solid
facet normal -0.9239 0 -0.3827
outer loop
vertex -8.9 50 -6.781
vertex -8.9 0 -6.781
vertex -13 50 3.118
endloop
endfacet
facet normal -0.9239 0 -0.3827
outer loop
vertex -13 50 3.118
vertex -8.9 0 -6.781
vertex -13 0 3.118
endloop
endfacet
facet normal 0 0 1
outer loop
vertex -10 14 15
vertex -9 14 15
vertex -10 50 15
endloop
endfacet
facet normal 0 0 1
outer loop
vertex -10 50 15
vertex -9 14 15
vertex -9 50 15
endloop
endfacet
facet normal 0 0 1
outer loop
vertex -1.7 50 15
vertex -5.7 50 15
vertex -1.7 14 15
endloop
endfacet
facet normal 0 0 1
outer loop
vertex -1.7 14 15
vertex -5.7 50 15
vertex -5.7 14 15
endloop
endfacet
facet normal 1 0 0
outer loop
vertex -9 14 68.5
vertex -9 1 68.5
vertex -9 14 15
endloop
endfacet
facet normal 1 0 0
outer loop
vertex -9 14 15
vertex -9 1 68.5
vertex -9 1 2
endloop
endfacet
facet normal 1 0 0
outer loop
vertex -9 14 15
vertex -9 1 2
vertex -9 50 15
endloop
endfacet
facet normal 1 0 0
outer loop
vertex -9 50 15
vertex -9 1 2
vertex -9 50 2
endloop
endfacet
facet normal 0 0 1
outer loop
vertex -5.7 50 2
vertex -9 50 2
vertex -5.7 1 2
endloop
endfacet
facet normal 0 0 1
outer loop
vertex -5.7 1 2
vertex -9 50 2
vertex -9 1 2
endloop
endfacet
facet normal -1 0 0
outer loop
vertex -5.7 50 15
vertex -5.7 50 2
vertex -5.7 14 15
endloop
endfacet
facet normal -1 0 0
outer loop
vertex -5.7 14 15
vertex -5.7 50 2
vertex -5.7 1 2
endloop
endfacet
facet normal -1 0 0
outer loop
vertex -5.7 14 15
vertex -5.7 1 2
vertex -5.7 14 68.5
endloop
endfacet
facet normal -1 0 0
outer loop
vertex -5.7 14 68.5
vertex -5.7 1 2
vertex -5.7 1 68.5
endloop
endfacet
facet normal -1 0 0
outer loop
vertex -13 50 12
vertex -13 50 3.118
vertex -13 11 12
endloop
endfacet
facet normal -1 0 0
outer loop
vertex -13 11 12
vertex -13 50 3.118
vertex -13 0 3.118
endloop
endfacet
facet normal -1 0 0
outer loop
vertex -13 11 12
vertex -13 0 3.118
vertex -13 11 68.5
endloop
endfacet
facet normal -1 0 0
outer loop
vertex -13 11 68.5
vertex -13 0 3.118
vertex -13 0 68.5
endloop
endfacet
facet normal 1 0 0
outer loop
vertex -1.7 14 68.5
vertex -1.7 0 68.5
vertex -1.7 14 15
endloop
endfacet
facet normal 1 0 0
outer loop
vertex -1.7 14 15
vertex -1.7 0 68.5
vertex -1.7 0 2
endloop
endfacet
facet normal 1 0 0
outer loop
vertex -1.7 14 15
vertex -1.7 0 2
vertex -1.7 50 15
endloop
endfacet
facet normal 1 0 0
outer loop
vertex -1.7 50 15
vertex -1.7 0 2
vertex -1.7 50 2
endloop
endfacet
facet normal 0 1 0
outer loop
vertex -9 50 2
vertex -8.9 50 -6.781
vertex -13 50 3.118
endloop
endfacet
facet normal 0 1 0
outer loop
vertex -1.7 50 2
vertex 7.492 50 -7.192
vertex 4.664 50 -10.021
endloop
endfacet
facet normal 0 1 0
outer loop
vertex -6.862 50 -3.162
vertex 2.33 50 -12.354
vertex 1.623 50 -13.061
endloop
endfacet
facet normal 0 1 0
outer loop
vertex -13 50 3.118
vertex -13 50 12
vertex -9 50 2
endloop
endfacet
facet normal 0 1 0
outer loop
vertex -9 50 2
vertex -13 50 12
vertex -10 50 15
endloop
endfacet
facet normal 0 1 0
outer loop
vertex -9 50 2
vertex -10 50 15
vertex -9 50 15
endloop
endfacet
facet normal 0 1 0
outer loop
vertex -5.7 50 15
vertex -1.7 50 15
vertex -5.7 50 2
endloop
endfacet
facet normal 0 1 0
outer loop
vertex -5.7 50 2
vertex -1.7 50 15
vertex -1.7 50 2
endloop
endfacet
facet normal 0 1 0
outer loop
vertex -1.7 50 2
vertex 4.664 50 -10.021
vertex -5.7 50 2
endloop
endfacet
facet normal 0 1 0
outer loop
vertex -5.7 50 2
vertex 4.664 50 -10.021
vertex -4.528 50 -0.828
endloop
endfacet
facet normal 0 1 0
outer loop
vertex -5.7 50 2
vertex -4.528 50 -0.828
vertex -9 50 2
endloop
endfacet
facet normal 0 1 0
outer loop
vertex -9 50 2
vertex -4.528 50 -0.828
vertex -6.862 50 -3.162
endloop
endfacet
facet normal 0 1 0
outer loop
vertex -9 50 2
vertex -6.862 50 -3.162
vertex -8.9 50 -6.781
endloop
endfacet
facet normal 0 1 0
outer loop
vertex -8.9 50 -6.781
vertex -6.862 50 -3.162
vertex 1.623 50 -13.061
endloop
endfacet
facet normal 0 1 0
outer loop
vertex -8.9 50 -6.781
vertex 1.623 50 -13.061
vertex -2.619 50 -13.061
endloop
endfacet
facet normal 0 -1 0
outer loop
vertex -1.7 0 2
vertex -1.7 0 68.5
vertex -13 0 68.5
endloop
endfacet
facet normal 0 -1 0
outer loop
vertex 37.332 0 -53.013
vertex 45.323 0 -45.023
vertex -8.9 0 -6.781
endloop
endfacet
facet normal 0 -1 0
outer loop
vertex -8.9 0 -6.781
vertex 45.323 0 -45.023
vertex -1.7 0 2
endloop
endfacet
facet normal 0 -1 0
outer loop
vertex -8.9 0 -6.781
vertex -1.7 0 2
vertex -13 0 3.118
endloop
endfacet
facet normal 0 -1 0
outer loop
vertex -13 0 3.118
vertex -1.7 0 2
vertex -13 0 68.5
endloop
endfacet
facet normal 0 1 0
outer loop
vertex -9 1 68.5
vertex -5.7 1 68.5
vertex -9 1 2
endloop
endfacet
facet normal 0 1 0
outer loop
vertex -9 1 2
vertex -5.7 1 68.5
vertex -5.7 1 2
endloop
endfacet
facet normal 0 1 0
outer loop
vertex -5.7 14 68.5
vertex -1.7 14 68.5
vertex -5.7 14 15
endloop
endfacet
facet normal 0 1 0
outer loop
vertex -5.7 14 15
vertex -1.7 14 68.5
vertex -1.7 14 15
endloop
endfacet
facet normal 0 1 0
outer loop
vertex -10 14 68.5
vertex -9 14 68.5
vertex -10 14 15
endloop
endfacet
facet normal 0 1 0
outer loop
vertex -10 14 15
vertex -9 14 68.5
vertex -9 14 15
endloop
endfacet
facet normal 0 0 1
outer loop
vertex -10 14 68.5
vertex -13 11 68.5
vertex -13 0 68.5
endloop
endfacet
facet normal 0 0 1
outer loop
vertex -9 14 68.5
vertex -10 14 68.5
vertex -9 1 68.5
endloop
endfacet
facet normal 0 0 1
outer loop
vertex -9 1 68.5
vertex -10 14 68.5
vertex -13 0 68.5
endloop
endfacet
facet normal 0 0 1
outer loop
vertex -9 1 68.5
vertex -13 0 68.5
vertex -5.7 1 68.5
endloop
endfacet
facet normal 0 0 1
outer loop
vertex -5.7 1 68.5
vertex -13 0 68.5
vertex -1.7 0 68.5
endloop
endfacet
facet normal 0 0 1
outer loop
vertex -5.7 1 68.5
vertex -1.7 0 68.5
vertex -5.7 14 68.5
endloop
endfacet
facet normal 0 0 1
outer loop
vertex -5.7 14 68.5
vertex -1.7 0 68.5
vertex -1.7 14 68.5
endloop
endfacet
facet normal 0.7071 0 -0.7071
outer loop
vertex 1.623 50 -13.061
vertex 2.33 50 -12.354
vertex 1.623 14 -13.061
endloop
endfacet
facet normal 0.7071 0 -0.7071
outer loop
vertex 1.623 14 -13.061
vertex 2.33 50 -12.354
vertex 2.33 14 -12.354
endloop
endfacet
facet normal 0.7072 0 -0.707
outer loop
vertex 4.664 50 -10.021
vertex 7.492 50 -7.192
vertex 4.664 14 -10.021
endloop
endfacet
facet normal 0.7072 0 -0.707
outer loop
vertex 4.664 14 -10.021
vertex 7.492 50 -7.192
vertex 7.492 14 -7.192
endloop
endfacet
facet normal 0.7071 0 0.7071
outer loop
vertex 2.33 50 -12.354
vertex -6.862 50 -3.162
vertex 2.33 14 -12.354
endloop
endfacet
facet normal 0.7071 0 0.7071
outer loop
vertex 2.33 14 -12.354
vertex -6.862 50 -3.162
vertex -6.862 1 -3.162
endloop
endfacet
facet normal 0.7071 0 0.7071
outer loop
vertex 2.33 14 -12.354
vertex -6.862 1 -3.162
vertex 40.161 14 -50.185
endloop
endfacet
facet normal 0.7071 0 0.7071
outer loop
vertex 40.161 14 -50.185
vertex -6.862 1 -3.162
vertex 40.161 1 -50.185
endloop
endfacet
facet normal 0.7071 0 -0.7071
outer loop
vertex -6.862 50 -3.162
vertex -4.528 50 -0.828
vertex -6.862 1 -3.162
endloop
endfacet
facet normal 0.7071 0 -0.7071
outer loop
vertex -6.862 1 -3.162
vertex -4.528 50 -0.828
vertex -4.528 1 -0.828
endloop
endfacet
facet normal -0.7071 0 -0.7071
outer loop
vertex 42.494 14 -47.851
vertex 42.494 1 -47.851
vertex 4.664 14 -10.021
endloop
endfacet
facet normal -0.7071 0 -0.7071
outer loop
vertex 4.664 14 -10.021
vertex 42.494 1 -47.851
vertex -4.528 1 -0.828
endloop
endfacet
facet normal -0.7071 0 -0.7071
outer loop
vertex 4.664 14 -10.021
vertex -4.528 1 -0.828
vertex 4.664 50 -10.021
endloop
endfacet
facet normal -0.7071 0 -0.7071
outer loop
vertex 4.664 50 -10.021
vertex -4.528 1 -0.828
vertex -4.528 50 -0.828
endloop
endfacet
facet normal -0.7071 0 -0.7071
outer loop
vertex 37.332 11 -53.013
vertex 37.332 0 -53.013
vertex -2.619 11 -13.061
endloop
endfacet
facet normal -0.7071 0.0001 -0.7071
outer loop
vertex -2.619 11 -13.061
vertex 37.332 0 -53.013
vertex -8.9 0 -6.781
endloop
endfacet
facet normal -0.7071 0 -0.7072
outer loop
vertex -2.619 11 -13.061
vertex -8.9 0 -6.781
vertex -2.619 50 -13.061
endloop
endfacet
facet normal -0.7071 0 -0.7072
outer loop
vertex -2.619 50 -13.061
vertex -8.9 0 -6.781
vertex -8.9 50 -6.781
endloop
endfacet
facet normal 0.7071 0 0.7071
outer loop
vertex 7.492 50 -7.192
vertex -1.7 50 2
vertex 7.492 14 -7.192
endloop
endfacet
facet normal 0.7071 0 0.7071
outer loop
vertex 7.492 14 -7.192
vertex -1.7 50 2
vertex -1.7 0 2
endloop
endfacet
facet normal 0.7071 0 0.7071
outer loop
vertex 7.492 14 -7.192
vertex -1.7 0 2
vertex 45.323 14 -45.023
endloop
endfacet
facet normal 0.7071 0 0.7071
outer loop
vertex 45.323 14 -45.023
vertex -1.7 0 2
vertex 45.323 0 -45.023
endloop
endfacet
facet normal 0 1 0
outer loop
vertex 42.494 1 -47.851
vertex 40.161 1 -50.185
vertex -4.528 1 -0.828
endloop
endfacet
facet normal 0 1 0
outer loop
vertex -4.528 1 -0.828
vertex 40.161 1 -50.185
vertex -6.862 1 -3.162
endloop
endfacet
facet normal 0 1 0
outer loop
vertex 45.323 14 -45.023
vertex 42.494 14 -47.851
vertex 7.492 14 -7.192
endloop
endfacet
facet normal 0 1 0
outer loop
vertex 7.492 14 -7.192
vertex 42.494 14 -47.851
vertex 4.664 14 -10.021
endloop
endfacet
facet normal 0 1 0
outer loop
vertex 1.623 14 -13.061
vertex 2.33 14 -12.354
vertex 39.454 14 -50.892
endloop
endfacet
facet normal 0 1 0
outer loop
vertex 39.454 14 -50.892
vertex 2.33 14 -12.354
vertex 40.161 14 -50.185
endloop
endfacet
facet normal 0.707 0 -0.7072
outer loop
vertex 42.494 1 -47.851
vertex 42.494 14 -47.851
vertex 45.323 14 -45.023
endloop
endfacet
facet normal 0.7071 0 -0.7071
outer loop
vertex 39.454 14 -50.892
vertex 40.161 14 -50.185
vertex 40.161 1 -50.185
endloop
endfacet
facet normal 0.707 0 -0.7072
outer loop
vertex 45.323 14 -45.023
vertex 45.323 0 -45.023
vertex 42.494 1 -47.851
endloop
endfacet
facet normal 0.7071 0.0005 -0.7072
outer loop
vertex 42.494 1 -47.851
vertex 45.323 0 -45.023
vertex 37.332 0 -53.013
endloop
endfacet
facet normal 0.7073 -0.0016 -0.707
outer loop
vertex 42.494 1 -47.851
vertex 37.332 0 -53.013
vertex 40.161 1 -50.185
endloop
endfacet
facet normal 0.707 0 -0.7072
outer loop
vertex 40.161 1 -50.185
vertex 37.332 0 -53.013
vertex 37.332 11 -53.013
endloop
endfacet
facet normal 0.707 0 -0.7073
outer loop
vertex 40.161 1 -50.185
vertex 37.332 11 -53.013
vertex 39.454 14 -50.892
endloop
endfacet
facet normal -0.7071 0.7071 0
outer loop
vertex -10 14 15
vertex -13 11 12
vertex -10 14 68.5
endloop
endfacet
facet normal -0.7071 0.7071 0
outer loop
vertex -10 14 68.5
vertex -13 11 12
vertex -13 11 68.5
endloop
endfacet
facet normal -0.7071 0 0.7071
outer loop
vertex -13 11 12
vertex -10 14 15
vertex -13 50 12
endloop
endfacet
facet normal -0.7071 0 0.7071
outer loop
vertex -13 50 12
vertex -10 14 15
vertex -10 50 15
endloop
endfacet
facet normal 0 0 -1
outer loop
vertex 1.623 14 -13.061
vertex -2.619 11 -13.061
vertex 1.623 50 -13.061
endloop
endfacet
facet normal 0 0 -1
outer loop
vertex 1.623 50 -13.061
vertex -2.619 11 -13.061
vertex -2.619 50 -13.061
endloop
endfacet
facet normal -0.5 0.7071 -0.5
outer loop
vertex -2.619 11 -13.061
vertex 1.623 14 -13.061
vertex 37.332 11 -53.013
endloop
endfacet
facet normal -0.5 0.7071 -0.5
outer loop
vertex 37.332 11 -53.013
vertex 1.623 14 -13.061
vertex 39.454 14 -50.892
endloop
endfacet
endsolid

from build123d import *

# Parameters (mm, degrees)
BOSS_EXTRUDE1_DEPTH = 50
SKETCH3_W           = 3.3
SKETCH3_H           = 1
BOSS_EXTRUDE2_DEPTH = 13
BOSS_EXTRUDE3_DEPTH = 53.5
CHAMFER1_START      = -14
CHAMFER1_OUTLINE_W  = 52
CHAMFER1_OUTLINE_H  = 13
CHAMFER1_DEPTH      = 3.182909169
CHAMFER2_SIZE       = 3


with BuildPart() as part:
    # Sketch2 → Boss-Extrude1 (new body)
    with BuildSketch(Plane(origin=(0, 0, 0), x_dir=(1, 0, 0), z_dir=(0, 1, 0))):
        Polygon((-1.7, -2), (-1.7, -15), (-5.7, -15), (-5.7, -2), (-9, -2), (-9, -15), (-13, -15), (-13, 2.680601608), align=None)
    extrude(amount=BOSS_EXTRUDE1_DEPTH)

    # Sketch3 → Boss-Extrude2 (add)
    with BuildSketch(Plane.XY.offset(2)):
        with Locations((-7.35, 0.5)):
            Rectangle(SKETCH3_W, SKETCH3_H)
    extrude(amount=BOSS_EXTRUDE2_DEPTH)

    # Sketch5 → Boss-Extrude3 (add)
    with BuildSketch(Plane.XY.offset(15)):
        Polygon((-13, 0), (-1.7, 0), (-1.7, 14), (-5.7, 14), (-5.7, 1), (-9, 1), (-9, 14), (-13, 14), align=None)
    extrude(amount=BOSS_EXTRUDE3_DEPTH)

    # Mirror1: part across plane


with BuildPart() as part_1:
    add(part.part)
    add(part.part.mirror(Plane(origin=(-0.956063716, 0, 2.308147732), x_dir=(0.9238798691632129, 0, 0.38268261961443256), z_dir=(0.3826826196144326, 0, -0.9238798691632131))))

    # Chamfer1: read off the stored shape, not the designer's step
    # Chamfer1 outline → Chamfer1 (cut)
    with BuildSketch(Plane(origin=(0, 0, 0), x_dir=(0, 1, 0), z_dir=(0.9238798691632129, 0, 0.38268261961443295)).offset(CHAMFER1_START)):
        with Locations((25, 2.5)):
            Rectangle(CHAMFER1_OUTLINE_W, CHAMFER1_OUTLINE_H)
    extrude(amount=CHAMFER1_DEPTH, mode=Mode.SUBTRACT)

    # Chamfer2
    chamfer2_edges = [part_1.edges().sort_by_distance(p)[0] for p in [
        (-13, 32, 15),
        (-13, 14, 41.75),
        (-0.497948704, 32, -15.182696898),
        (18.417124413, 14, -34.097836574),
    ]]
    chamfer(chamfer2_edges, length=CHAMFER2_SIZE)


solid = part_1.part
